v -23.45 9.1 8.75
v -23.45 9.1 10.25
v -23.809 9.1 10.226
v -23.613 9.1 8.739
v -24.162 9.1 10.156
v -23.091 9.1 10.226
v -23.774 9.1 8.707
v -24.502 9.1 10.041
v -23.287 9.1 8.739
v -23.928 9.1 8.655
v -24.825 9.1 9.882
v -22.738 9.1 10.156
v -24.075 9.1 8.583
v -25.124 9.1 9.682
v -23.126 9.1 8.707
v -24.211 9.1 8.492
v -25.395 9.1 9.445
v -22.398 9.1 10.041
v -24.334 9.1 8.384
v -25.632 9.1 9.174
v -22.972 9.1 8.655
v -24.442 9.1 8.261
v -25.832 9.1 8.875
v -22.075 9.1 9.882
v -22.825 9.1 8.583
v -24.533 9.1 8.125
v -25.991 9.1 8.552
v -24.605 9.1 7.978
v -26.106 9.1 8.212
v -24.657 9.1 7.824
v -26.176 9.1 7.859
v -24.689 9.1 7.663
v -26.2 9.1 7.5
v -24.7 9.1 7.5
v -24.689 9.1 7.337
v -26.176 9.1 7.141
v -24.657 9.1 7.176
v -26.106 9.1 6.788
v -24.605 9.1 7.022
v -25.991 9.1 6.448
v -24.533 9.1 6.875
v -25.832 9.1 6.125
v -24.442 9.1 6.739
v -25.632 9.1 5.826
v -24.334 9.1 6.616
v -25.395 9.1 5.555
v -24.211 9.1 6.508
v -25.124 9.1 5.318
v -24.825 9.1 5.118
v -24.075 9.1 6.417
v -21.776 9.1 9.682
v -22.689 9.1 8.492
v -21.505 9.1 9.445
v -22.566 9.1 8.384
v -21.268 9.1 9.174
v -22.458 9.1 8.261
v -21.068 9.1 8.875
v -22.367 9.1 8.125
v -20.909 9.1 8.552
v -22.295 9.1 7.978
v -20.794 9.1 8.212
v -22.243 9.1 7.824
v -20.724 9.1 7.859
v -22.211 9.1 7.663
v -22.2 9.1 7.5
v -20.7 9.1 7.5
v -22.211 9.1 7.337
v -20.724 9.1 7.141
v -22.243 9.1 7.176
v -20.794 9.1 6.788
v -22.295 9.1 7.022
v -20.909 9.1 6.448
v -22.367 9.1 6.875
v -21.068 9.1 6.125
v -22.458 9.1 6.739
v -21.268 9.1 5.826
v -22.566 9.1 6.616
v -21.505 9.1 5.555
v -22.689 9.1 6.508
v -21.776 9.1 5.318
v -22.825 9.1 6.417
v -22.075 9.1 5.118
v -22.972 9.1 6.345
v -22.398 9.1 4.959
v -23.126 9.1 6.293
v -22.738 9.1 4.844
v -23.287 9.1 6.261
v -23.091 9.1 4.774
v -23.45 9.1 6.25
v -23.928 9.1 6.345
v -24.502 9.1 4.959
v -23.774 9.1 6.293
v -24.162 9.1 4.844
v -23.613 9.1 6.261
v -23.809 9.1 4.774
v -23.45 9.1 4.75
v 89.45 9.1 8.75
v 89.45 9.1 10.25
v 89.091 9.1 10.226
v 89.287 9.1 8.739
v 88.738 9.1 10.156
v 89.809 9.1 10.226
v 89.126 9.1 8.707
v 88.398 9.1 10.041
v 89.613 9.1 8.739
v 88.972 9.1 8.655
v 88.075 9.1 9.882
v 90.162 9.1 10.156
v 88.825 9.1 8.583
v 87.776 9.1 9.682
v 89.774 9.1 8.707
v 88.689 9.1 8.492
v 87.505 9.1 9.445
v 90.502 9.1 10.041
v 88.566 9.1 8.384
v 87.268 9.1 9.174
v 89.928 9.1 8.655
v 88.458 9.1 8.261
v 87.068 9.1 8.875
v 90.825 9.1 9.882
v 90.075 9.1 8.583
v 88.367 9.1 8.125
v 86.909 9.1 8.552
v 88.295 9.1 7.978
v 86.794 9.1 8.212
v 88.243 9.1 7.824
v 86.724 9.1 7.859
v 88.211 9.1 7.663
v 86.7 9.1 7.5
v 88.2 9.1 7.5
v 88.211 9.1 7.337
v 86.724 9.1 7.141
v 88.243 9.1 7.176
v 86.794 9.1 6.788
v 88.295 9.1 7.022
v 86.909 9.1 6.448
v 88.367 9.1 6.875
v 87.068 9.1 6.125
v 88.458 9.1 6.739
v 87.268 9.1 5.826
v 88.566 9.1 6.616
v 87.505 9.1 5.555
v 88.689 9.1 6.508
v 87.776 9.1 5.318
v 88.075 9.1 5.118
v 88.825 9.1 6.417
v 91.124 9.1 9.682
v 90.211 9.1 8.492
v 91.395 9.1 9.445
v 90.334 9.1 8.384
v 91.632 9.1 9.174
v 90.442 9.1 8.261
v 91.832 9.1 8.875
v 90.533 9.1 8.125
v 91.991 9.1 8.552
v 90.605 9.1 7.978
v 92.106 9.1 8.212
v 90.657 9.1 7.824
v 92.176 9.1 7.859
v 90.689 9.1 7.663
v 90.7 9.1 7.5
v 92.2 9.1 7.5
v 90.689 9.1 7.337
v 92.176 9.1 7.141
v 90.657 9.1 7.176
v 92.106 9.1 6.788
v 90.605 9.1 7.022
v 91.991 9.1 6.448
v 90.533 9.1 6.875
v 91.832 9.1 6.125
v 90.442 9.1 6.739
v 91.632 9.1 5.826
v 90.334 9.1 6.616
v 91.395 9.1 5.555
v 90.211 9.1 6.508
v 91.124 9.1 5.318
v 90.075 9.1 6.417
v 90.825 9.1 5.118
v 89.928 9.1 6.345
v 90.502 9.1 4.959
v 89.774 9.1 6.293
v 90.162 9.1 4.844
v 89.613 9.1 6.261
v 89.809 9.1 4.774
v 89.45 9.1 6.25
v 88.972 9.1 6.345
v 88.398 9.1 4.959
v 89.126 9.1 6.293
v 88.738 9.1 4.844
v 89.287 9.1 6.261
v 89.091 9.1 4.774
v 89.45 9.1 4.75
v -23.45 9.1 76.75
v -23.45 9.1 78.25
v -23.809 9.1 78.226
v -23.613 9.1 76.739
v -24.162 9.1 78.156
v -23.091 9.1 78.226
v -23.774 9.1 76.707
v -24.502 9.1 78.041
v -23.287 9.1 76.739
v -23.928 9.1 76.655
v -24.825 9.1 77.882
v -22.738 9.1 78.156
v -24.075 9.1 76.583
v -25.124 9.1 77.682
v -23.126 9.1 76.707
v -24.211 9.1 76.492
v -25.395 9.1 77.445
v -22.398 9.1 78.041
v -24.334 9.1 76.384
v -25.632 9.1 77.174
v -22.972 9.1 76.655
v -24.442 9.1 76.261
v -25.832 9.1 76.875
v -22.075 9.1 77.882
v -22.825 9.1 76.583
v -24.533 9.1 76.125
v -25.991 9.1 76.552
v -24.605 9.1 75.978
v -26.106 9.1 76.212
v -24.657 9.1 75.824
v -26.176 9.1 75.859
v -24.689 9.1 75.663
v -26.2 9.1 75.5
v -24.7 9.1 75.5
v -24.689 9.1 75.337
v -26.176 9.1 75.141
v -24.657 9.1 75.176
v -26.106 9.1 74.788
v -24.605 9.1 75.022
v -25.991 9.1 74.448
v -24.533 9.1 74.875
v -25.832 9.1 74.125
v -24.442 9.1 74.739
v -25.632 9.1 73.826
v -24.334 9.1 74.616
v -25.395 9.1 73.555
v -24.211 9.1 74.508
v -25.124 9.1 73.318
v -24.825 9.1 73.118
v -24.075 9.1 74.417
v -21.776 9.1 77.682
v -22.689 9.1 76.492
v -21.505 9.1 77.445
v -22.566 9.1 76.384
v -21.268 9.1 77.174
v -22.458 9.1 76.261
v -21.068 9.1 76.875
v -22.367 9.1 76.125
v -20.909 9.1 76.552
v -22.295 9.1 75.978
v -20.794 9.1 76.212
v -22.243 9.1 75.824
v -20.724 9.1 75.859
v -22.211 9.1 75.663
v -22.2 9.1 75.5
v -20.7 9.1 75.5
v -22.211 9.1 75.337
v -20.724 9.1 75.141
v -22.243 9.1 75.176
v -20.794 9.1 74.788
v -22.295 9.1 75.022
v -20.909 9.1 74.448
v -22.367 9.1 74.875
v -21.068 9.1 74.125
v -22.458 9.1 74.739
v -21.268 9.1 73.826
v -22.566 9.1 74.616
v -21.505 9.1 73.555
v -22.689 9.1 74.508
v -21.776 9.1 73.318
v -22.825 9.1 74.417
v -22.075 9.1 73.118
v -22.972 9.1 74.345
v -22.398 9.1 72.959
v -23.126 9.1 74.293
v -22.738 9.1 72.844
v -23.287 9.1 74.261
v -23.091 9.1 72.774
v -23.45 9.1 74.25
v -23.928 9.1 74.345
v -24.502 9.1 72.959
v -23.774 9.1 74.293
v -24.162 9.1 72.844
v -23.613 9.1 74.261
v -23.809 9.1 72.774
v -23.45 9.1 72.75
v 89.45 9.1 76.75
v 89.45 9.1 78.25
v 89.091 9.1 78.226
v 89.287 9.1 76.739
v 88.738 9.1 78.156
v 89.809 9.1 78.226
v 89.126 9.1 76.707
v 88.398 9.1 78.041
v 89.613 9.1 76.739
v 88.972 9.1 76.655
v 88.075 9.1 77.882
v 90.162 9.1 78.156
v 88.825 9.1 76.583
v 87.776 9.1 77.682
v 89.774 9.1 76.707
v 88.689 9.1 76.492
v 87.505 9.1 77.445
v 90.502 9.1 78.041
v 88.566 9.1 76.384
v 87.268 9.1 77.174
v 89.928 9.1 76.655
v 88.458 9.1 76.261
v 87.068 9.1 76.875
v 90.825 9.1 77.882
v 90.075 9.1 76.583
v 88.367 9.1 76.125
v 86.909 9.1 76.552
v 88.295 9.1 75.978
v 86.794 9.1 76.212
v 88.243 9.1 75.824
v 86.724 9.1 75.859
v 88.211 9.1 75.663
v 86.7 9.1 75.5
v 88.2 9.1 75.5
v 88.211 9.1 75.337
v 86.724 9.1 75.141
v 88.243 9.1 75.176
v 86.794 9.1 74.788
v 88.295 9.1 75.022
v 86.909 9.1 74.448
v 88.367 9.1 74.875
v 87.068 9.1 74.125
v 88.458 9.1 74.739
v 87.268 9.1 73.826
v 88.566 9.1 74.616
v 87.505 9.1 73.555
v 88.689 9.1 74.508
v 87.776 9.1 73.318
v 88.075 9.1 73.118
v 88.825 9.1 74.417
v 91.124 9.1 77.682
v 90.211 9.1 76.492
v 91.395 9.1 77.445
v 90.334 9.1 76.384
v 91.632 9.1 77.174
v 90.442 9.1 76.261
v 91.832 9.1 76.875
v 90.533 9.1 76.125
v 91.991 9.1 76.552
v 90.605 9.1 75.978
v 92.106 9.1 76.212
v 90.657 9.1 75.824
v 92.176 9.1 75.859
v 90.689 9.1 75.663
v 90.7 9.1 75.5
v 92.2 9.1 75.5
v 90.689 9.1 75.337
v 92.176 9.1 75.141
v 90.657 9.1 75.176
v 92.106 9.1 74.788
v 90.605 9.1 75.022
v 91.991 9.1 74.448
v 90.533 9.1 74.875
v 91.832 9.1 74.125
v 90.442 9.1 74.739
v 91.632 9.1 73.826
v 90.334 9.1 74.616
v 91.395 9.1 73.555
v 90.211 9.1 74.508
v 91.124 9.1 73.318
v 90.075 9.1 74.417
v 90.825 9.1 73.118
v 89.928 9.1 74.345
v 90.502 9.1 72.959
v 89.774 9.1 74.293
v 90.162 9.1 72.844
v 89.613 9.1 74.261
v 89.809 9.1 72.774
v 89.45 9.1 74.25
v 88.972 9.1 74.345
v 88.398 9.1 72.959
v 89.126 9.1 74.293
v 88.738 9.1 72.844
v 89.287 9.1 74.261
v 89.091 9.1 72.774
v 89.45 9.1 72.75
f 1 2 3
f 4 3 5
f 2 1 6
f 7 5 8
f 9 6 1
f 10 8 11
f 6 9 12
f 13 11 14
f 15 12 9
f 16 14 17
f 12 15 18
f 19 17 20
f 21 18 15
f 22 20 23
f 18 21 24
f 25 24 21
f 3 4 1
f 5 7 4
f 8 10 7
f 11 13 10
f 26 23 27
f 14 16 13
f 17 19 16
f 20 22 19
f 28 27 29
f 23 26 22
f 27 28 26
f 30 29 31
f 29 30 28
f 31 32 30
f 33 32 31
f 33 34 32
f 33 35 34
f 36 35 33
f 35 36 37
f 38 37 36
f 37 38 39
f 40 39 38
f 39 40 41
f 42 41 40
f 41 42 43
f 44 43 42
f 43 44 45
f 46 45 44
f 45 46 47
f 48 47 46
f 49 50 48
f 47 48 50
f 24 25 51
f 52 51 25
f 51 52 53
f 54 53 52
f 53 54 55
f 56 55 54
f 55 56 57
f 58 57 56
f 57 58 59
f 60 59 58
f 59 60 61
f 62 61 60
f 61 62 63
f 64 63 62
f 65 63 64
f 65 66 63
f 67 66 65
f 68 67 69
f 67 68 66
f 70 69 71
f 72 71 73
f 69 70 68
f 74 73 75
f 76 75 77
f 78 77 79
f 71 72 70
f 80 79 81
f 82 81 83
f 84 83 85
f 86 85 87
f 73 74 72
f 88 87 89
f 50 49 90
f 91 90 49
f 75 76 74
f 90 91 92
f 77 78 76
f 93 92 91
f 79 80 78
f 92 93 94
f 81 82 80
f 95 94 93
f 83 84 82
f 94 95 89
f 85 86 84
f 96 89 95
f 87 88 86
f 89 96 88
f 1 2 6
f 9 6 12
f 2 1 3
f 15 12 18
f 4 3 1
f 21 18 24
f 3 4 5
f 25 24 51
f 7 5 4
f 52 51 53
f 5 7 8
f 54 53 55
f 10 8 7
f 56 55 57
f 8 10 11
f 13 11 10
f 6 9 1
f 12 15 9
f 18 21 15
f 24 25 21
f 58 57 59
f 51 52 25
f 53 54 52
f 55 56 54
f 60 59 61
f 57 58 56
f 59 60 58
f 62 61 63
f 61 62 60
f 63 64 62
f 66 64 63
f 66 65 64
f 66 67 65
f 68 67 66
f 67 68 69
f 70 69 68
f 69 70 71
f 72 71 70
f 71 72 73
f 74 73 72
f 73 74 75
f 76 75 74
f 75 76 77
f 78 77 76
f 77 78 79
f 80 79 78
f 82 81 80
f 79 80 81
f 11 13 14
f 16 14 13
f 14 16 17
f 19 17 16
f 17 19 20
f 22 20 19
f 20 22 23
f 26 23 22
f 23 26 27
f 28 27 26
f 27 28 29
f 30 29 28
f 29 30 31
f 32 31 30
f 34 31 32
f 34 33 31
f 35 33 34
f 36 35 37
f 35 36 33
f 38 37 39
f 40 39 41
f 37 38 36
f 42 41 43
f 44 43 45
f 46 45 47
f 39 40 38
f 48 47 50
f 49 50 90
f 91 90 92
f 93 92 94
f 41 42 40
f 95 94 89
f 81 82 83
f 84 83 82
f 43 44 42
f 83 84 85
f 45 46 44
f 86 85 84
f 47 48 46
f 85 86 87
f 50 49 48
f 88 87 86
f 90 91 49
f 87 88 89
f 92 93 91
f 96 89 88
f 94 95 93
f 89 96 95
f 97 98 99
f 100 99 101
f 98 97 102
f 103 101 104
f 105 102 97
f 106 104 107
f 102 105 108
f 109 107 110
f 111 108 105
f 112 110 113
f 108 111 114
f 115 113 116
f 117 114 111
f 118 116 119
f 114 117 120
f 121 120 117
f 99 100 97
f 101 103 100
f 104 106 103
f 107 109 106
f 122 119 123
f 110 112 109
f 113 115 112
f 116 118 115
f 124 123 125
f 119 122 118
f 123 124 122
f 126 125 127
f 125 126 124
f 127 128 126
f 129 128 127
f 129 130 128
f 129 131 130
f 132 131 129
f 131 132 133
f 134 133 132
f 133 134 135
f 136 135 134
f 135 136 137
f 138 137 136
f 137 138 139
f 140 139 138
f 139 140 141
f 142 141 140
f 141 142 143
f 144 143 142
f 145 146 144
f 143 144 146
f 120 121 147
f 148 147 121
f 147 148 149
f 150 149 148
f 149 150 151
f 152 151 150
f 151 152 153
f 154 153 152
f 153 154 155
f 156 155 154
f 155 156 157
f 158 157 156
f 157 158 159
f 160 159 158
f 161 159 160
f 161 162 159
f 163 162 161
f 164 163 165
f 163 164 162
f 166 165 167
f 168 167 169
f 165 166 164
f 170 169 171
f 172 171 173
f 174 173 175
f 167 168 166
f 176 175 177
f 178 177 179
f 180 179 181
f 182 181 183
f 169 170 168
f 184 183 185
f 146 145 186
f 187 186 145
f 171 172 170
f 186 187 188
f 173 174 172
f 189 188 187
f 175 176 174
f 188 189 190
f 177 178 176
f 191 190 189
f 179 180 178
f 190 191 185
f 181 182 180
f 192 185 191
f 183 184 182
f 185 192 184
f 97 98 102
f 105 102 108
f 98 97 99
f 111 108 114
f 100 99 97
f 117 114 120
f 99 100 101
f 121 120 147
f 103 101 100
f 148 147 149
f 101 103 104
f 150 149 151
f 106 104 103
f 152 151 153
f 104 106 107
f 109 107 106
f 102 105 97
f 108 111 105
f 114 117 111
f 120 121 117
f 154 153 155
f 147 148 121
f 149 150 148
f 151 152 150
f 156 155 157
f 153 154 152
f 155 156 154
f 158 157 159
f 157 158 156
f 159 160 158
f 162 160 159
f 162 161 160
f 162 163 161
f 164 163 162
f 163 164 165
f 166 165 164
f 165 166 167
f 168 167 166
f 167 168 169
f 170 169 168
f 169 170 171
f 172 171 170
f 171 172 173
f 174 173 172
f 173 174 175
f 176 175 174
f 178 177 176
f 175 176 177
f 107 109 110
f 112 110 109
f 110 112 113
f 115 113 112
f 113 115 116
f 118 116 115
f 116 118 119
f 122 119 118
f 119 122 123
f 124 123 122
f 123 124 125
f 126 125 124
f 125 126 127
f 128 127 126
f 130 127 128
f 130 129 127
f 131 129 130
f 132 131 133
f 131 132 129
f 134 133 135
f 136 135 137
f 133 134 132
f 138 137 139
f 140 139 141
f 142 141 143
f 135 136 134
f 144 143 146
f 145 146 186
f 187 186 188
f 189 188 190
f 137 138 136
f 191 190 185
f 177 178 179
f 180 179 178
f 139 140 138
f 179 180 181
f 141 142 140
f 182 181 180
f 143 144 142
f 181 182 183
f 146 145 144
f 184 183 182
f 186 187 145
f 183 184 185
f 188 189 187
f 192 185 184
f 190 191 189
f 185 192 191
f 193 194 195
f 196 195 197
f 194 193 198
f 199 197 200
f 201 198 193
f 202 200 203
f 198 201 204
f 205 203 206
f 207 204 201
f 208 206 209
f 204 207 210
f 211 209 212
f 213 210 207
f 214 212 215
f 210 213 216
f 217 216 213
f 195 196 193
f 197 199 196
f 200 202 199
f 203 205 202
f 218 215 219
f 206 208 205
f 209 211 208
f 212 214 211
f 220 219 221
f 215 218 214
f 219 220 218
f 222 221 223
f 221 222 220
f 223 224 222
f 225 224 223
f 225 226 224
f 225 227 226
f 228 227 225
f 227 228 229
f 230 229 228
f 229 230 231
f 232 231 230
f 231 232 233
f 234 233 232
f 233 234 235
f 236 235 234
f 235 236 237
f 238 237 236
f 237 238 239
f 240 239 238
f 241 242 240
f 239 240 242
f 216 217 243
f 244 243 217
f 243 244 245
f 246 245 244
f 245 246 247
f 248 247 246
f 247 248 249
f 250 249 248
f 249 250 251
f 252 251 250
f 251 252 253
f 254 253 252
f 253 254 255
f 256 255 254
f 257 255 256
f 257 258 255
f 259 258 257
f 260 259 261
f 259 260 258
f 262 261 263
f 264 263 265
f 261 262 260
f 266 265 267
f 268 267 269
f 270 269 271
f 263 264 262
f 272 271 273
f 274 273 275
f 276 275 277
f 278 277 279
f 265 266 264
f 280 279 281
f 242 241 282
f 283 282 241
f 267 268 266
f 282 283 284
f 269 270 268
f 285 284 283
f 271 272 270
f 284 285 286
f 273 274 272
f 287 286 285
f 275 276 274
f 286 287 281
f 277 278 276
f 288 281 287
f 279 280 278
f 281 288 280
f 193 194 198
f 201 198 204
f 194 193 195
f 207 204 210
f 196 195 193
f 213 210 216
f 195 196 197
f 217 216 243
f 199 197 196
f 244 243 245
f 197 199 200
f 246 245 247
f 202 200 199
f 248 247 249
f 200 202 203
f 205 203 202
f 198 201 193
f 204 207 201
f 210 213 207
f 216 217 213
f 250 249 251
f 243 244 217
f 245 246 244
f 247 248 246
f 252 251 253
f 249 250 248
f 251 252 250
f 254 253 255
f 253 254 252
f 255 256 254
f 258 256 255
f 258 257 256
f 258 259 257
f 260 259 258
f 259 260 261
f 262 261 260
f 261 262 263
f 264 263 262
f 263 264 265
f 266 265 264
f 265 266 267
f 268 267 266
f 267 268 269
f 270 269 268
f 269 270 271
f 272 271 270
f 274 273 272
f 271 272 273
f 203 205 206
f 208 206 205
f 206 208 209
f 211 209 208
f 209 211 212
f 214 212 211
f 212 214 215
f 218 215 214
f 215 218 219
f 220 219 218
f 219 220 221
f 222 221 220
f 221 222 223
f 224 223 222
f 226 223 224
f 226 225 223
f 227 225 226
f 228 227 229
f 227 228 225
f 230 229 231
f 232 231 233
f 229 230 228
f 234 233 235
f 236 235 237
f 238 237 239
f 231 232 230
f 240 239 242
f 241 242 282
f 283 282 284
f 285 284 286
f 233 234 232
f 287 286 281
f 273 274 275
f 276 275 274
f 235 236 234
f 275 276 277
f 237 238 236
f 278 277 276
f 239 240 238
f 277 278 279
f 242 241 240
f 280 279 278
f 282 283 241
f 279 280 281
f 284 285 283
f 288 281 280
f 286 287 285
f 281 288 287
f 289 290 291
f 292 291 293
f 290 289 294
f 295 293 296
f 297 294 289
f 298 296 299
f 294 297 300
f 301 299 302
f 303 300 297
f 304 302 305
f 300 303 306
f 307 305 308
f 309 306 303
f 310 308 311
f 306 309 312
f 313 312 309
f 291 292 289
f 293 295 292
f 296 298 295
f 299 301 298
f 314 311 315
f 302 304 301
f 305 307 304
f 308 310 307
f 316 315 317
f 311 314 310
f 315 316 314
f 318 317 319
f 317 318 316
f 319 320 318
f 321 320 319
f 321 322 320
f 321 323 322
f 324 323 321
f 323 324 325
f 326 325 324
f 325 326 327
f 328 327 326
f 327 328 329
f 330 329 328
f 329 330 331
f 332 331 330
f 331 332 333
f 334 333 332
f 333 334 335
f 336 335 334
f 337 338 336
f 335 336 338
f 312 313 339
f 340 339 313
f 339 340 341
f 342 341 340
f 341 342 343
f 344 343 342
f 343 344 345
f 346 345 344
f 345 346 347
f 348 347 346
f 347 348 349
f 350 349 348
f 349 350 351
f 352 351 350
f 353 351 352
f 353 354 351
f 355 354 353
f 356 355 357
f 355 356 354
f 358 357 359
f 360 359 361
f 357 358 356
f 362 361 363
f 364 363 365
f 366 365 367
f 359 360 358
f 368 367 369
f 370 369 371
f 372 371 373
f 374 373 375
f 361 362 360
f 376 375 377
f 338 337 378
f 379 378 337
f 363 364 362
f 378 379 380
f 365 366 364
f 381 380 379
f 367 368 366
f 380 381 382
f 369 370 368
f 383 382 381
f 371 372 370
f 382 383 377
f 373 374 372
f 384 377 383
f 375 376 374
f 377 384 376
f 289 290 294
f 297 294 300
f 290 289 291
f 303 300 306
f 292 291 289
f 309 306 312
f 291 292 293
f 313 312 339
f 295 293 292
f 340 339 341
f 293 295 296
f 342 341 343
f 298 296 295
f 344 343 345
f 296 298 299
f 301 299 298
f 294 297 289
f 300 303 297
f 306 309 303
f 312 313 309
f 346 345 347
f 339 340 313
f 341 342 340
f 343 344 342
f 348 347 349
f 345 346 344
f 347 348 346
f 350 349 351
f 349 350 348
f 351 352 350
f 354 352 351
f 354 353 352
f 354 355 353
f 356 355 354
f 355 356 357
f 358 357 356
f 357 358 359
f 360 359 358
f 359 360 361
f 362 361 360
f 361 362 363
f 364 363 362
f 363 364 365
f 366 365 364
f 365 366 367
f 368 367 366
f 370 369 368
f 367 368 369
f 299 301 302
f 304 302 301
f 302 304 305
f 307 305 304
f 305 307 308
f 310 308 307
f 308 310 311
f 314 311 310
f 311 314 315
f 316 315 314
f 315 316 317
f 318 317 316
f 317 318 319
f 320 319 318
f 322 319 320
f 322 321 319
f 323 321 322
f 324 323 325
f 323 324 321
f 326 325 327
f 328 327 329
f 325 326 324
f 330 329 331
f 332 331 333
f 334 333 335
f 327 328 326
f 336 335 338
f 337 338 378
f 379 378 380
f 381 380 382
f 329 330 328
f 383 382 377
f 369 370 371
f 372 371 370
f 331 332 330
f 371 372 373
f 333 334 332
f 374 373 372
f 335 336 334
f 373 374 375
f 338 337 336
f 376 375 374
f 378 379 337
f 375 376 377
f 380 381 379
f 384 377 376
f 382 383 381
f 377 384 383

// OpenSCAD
// file: D:/Projects/assembly-workshop/outputs/Screen_Pi_Hue_SCR5-H_2026-10-30/checks/geometry.scad
// SCR5-G; mm; FRONT view: X right, Z up, Y into rack. Glass/plate front Y=0.
// Measured values: work/screen-5in/Dimensions.md. Physical fit/strength UNKNOWN.
part="plate";
DROP=0.45; // coupon winner can be substituted here; all three pins use this DROP
LIP=0.8; LIP_ON=true;
LIP_EDGES=[true,true,false,false]; // left,right,bottom,top; Brian: side lips only, cosmetic
FRAME_STEP=1.5; // measured glass-edge inset to metal LCD frame, left/right only
SHIM=0; // moves rear frame seat and plate-boss mating face back
$fn=48;
GCX=33; GCZ=41.5; PW=252; PH=88.8; PT=4;
GW=120.7; GH=77.2; CLEAR=0.2; WW=GW+2*CLEAR; WH=GH+2*CLEAR;
SEAT=13.3+SHIM; FT=3;
SO=[56.45,34]; BTN_X=[45.5,35.5,25.5];
PCB_TOP=38; GAP=0.10; LEAF_T=0.8;
HOLE=[3.4,40.3,44.7];
BX=[GCX-68,GCX+68]; BZ=[10,72];
// DSI connector X extent is unmeasured: conservative assumed 8 mm inward from PCB edge.
DSI=[GCX-60.5,9.1,GCZ-38+30,8,5.25,21];
module xz(y,d){translate([0,y+d,0])rotate([90,0,0])linear_extrude(d)children();}
// rr/rack_slots copied from SCR5-F; same exact slot centres, outline shifted -0.05 Z to centre 44.4.
module rr(w,h,r){hull()for(x=[-w/2+r,w/2-r],z=[-h/2+r,h/2-r])translate([x,z])circle(r=r);}
module rack_slots(){for(x=[-118.2625,118.2625],z=[6.323,38.127,50.773,82.577])translate([x,z])hull()for(dx=[-1.5,1.5])translate([dx,0])circle(d=7);}
module cyl_y(x,y,z,d,h){translate([x,y,z])rotate([-90,0,0])cylinder(d=d,h=h);}
module window_cut(){
  xz(-0.02,4.04)translate([GCX,GCZ])square([WW,WH],center=true);
  // 0.3 x 45-degree chamfer, square corners, front only.
  translate([GCX,0.3,GCZ])rotate([90,0,0])
    linear_extrude(height=0.3,scale=[(WW+0.6)/WW,(WH+0.6)/WH])square([WW,WH],center=true);
}
module lips(){
  // Cosmetic side ledges only; rear frame/standoffs set depth and retain the screen.
  if(LIP_ON)for(i=[0:3])if(LIP_EDGES[i]){
    if(i<2)translate([GCX+(i==0?-WW/2:WW/2-LIP),2.5,GCZ-GH/2+4])cube([LIP,0.8,GH-8]);
    else translate([GCX-GW/2+4,2.5,GCZ+(i==2?-WH/2:WH/2-LIP)])cube([GW-8,0.8,LIP]);
  }
}
// Leaf/nub/bump geometry copied from SCR5-WP-A, translated to this glass centre.
module leaves(){for(x=BTN_X)translate([GCX+x-1.5,0,GCZ]){
  translate([0,0,PCB_TOP+GAP+0.9+0.1])cube([3,11.8,LEAF_T]);
  translate([0,10.2,PCB_TOP+GAP])cube([3,1.4,1.0+LEAF_T/2]);
  translate([0,10.4,PCB_TOP+GAP+1.0+LEAF_T])cube([3,1.0,0.9]);
}}
module plate(){difference(){union(){
  difference(){xz(0,PT)translate([0,PH/2])rr(PW,PH,2.5);window_cut();}
  for(x=BX,z=BZ)cyl_y(x,3.9,z,8,SEAT-3.9);
  leaves(); lips();
 }
 xz(-0.02,4.04)rack_slots();
 for(x=BTN_X)translate([GCX+x-HOLE[0]/2,-0.02,GCZ+HOLE[1]])cube([HOLE[0],SEAT+FT+0.04,HOLE[2]-HOLE[1]]);
 // Printed-in screw pilots (no heat-set OD assumption): nominal M2.5, fit UNKNOWN.
 for(x=BX,z=BZ)cyl_y(x,SEAT-6,z,2.1,6.02);
 // Rear engraving, 0.5 deep, left field.
 xz(3.5,0.52)translate([-75,40])mirror([1,0])text("SCR5-G",size=6,halign="center",font="Liberation Sans:style=Bold");
}}
module frame_blank(){
  // C-shaped perimeter; no material across the board centre / touch FPC.
  xz(SEAT,FT)translate([GCX,GCZ])difference(){square([132,76],center=true);square([116,60],center=true);}
  for(sx=[-1,1],sz=[-1,1])cyl_y(GCX+sx*SO[0],SEAT,GCZ+sz*SO[1],9,FT);
  for(x=BX,z=BZ)hull(){cyl_y(x,SEAT,z,8,FT);cyl_y(GCX+(x<GCX?-62:62),SEAT,z,8,FT);}
}
module dsi_keepout(){translate([DSI[0]-3,DSI[1]-3,DSI[2]-3])cube([DSI[3]+6,DSI[4]+6,DSI[5]+6]);}
module ribbon_route(){
  // Open left/up corridor 18 mm wide; extends past top of plate.
  translate([GCX-84,6.1,GCZ-11])cube([18,24,65]);
  translate([GCX-84,6.1,GCZ-11])cube([32,24,27]);
}
module frame(){difference(){frame_blank();dsi_keepout();ribbon_route();
 for(sx=[-1,1],sz=[-1,1])cyl_y(GCX+sx*SO[0],SEAT-0.02,GCZ+sz*SO[1],2.8,FT+0.04);
 for(x=BX,z=BZ)cyl_y(x,SEAT-0.02,z,2.8,FT+0.04);
}}
// Pin polygon/cap/notch/dot design copied unchanged from SCR5-WP-A.
module pin(d,dots){s=2*d+0.5;difference(){union(){
 translate([-1.5,0,0])rotate([90,0,90])linear_extrude(3)polygon([
 [-s-0.02,40.5],[10.2,40.5],[10.2,41.0],[11.5,41.0],[11.5+2*d,41.0-d],[15,41.0-d],[15,44.5],[-s-0.02,44.5]]);
 translate([-2.5,-s-1.5,39.6])cube([5,1.5,5.8]);
 }for(i=[0:dots-1])translate([(i-(dots-1)/2)*1.4,-s-1.5-0.01,43.5])rotate([-90,0,0])cylinder(d=0.9,h=0.4);}}
module placed_pin(i){translate([GCX+BTN_X[i],0,GCZ])pin(DROP,i+1);}
// Measured layers: cover glass 0.9 + second glass 1.6, metal frame 3.0,
// open gap 2.0, PCB 1.6. Metal frame inset ~1.5 at LEFT/RIGHT only.
// PCB centred under glass and full metal-frame top/bottom extent remain UNKNOWN.
module glass(){translate([GCX-GW/2,0,GCZ-GH/2])cube([GW,2.5,GH]);}
module lcd(){
  translate([GCX-GW/2+FRAME_STEP,2.5,GCZ-GH/2])cube([GW-2*FRAME_STEP,3.0,GH]);
}
module pcb(){translate([GCX-60.5,7.5,GCZ-38])cube([121,1.6,76]);}
module standoffs(){for(sx=[-1,1],sz=[-1,1])difference(){cyl_y(GCX+sx*SO[0],9.1,GCZ+sz*SO[1],5.5,4.2);cyl_y(GCX+sx*SO[0],9.08,GCZ+sz*SO[1],2.5,4.24);}}
module buttons(){for(x=BTN_X){
 translate([GCX+x-3.5,9.1,GCZ+38-3.4])cube([7,3.6,2.4]);
 translate([GCX+x-1.5,9.1,GCZ+37])cube([3,3.6,1]);
}}
module dsi(){translate([DSI[0],DSI[1],DSI[2]])cube([DSI[3],DSI[4],DSI[5]]);}
module touch(){translate([GCX-10,9.1,GCZ-5])cube([20,2,10]);} // lateral extent unmeasured
module dummy(){glass();lcd();pcb();standoffs();buttons();dsi();touch();}
module assembly(){color("gray")plate();color("orange")frame();for(i=[0:2])color("cyan")placed_pin(i);color([0.2,0.3,0.4,0.4])dummy();}
// main file
include <D:/Projects/assembly-workshop/outputs/Screen_Pi_Hue_SCR5-H_2026-10-30/checks/geometry.scad>
intersection(){pcb();standoffs();}
